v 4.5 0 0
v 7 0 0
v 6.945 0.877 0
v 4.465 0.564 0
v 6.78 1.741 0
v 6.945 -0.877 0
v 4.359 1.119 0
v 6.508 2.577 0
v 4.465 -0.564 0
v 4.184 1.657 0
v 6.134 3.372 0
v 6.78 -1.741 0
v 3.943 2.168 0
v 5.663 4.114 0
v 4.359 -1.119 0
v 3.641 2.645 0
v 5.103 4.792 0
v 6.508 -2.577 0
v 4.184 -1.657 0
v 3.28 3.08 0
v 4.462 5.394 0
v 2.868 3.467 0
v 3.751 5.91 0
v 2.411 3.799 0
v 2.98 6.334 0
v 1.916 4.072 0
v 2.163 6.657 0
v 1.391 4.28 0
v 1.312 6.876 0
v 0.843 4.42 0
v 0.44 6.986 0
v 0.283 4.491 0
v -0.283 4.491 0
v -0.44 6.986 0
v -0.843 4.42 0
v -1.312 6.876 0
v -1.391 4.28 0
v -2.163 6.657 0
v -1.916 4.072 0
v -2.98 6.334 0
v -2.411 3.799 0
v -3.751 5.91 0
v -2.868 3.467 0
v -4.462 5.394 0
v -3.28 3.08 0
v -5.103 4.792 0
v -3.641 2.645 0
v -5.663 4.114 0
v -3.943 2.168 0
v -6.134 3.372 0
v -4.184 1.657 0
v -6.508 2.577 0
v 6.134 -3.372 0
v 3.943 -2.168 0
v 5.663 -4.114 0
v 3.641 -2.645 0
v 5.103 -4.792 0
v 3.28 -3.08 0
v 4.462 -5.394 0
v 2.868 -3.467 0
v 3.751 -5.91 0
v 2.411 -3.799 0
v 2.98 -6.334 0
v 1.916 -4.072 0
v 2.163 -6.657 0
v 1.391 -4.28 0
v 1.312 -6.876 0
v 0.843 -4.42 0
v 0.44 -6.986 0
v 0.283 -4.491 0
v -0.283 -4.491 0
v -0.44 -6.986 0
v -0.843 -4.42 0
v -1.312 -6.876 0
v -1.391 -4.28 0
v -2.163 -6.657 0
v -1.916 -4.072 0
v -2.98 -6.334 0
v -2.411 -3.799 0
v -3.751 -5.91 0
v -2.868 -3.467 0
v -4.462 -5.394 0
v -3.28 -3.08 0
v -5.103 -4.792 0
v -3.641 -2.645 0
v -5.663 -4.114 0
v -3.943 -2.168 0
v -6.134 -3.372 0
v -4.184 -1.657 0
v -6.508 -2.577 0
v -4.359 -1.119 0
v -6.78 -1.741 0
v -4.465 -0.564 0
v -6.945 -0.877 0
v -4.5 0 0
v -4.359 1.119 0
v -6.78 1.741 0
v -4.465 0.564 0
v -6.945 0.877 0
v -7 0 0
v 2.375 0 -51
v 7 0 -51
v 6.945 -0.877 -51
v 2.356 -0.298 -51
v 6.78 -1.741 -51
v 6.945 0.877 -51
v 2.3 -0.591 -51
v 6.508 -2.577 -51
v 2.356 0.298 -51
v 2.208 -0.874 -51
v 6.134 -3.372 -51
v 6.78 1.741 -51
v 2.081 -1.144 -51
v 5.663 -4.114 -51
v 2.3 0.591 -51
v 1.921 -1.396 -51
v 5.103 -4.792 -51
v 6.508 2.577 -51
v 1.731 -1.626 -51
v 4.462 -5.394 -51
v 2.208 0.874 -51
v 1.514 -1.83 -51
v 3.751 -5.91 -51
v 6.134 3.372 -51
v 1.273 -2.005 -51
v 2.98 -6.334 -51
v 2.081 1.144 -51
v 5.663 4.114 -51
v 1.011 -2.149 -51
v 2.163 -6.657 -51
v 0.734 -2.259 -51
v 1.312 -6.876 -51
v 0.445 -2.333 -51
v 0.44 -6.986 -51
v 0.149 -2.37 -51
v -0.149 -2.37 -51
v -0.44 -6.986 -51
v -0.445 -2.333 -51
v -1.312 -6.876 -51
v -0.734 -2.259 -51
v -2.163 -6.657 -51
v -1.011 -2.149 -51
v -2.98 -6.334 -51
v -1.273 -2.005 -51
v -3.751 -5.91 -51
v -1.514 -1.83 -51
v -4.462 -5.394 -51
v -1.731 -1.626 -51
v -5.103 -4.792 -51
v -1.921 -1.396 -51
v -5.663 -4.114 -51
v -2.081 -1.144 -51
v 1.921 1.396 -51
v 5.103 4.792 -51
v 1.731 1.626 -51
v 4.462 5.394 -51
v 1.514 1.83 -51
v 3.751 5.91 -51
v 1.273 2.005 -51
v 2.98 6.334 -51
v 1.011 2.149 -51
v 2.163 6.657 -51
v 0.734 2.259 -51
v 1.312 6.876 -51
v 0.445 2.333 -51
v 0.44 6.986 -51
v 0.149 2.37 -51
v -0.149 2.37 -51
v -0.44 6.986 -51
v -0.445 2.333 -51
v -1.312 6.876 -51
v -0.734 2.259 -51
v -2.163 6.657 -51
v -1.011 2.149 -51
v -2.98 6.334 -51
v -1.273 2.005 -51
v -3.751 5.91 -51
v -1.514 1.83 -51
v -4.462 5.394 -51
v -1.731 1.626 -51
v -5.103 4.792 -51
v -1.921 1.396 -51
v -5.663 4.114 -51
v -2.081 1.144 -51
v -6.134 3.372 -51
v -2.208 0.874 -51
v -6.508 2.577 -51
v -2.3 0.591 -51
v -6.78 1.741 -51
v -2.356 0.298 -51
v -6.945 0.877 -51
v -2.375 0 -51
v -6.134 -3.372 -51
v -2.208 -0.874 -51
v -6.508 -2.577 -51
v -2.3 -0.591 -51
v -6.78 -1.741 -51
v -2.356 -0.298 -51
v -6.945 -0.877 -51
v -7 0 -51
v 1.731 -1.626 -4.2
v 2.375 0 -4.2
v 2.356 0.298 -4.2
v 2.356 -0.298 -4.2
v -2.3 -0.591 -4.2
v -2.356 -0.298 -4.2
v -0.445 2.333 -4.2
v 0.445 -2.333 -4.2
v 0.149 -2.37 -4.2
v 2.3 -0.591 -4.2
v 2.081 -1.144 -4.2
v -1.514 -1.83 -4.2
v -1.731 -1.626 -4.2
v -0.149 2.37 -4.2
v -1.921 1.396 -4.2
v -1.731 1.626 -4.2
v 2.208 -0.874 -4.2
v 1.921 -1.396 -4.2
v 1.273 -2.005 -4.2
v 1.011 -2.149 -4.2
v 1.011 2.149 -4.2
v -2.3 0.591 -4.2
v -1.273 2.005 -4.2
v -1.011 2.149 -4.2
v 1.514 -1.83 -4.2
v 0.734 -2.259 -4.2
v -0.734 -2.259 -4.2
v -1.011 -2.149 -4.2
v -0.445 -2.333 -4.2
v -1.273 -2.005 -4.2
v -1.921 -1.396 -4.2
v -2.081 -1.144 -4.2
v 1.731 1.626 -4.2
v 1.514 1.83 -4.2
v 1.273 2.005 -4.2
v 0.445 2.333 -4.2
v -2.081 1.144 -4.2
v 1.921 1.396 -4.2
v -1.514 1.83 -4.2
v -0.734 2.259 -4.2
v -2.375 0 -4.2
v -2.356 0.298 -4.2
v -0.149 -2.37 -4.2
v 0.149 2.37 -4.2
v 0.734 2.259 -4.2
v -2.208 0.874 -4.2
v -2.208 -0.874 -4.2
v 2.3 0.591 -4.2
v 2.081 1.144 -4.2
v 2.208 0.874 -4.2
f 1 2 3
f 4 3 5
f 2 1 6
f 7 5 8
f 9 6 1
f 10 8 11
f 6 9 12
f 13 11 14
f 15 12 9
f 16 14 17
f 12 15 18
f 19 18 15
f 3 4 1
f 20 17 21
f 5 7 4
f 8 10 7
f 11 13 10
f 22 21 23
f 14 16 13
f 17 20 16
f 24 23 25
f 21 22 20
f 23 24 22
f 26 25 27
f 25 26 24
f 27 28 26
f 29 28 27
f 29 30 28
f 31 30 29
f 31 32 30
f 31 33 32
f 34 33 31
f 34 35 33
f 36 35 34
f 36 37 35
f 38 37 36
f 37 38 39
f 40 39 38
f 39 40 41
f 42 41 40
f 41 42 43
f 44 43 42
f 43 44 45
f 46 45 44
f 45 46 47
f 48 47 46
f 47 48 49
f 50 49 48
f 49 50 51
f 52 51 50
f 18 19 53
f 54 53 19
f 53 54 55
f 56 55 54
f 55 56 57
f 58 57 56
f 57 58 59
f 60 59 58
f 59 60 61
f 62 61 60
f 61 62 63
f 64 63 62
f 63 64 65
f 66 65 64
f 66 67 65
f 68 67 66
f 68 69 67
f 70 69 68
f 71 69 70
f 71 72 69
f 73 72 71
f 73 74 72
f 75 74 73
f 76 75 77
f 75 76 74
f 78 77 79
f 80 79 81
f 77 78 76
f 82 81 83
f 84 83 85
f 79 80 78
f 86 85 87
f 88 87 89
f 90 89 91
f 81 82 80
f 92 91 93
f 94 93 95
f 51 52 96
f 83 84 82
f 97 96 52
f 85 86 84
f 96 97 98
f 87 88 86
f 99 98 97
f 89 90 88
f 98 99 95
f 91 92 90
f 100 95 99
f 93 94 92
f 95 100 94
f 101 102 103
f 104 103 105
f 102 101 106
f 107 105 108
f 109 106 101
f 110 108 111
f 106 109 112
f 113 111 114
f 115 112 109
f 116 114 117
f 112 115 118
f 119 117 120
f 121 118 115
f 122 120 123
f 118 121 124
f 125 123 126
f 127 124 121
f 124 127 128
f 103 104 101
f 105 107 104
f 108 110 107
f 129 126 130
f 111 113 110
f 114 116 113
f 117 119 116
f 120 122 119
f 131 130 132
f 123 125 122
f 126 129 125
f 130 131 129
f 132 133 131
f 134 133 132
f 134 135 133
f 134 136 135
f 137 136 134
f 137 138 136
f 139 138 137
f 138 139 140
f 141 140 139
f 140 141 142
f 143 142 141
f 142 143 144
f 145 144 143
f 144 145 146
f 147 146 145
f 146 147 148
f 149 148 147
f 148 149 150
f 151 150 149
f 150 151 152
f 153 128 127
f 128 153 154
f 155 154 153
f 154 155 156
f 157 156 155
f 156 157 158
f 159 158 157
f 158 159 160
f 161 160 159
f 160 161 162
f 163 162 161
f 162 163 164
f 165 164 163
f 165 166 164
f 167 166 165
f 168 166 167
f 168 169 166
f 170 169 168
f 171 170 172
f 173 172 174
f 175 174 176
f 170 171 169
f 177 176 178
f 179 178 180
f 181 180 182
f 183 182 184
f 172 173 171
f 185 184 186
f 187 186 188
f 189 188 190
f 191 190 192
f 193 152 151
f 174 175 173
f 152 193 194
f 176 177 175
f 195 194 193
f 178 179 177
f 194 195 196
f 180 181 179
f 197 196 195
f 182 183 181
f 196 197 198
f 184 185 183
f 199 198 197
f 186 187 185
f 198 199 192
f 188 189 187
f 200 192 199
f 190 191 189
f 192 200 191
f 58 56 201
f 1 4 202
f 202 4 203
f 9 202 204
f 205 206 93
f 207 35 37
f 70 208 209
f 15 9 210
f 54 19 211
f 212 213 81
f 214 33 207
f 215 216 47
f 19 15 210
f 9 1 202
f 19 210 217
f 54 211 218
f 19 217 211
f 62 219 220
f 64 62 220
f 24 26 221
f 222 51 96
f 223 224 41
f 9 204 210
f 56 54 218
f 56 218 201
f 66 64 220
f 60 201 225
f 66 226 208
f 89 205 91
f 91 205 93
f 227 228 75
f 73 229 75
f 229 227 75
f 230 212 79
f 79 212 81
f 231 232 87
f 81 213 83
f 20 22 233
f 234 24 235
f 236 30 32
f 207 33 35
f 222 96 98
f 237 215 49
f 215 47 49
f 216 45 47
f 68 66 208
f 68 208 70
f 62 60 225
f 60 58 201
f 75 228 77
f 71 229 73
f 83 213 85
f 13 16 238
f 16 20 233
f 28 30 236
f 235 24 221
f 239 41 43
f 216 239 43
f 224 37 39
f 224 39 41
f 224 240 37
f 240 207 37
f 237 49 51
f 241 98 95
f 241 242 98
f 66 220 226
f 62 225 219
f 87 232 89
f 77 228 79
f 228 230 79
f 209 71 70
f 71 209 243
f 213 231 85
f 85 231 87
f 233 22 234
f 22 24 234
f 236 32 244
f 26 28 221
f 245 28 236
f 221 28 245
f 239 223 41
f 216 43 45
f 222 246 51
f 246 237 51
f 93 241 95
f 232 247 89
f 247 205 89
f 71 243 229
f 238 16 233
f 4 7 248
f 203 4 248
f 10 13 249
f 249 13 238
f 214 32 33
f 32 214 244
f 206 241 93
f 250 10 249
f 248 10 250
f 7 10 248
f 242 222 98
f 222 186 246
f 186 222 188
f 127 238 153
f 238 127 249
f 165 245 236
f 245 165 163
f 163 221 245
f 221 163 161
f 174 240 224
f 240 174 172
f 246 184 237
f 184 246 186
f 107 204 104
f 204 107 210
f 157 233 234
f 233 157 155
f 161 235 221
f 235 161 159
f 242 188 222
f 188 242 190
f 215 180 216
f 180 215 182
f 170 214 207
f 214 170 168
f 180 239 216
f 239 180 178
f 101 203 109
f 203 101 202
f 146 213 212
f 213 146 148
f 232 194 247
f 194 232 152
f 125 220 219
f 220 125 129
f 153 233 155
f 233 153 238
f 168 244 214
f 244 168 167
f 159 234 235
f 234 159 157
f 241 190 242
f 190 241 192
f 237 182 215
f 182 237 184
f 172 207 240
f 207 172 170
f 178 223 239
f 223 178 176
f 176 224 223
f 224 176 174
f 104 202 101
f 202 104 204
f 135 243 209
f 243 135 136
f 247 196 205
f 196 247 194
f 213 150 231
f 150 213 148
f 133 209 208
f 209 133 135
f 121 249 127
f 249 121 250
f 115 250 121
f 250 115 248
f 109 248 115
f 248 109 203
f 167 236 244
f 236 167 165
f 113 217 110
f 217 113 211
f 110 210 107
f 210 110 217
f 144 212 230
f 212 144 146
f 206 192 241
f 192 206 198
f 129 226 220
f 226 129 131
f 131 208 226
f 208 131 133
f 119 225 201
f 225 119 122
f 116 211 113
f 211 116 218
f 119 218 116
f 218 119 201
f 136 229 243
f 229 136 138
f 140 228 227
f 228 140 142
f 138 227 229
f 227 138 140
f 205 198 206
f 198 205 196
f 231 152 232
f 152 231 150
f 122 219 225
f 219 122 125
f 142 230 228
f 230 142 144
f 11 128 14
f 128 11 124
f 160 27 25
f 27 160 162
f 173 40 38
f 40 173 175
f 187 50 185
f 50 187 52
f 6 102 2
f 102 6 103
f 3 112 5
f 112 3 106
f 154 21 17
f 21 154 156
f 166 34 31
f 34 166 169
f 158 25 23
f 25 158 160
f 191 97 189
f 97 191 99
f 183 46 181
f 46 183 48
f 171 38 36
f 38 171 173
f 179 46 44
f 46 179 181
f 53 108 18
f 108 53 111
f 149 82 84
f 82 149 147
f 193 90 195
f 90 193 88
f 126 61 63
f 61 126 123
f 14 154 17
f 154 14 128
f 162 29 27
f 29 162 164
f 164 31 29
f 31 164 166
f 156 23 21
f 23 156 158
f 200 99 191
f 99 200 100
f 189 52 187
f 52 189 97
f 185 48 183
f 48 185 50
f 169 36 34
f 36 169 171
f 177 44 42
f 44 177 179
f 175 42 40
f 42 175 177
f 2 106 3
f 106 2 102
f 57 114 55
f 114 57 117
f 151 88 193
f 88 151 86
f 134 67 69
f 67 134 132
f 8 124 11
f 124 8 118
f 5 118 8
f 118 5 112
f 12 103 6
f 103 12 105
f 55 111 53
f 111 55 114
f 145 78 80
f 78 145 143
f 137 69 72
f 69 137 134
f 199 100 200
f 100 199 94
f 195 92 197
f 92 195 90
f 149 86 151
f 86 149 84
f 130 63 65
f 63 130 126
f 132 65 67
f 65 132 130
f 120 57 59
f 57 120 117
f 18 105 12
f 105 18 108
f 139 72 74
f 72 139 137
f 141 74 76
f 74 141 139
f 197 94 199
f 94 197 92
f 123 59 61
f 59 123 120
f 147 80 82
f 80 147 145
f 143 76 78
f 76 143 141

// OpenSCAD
$fn = 50;


difference() {
	union() {
		translate(v = [0, 0, -51.0000000000]) {
			cylinder(h = 51, r = 7.0000000000);
		}
		cylinder(h = 0, r = 16.0000000000);
	}
	union() {
		translate(v = [0, 0, 0]) {
			rotate(a = [0, 0, 0]) {
				difference() {
					union() {
						#translate(v = [0, 0, -51.0000000000]) {
							cylinder(h = 51, r = 2.2500000000);
						}
						#translate(v = [0, 0, -4.2000000000]) {
							cylinder(h = 4.2000000000, r1 = 2.3750000000, r2 = 4.5000000000);
						}
						#translate(v = [0, 0, -51.0000000000]) {
							cylinder(h = 51, r = 2.3750000000);
						}
						#translate(v = [0, 0, -51.0000000000]) {
							cylinder(h = 51, r = 2.2500000000);
						}
					}
					union();
				}
			}
		}
	}
}
